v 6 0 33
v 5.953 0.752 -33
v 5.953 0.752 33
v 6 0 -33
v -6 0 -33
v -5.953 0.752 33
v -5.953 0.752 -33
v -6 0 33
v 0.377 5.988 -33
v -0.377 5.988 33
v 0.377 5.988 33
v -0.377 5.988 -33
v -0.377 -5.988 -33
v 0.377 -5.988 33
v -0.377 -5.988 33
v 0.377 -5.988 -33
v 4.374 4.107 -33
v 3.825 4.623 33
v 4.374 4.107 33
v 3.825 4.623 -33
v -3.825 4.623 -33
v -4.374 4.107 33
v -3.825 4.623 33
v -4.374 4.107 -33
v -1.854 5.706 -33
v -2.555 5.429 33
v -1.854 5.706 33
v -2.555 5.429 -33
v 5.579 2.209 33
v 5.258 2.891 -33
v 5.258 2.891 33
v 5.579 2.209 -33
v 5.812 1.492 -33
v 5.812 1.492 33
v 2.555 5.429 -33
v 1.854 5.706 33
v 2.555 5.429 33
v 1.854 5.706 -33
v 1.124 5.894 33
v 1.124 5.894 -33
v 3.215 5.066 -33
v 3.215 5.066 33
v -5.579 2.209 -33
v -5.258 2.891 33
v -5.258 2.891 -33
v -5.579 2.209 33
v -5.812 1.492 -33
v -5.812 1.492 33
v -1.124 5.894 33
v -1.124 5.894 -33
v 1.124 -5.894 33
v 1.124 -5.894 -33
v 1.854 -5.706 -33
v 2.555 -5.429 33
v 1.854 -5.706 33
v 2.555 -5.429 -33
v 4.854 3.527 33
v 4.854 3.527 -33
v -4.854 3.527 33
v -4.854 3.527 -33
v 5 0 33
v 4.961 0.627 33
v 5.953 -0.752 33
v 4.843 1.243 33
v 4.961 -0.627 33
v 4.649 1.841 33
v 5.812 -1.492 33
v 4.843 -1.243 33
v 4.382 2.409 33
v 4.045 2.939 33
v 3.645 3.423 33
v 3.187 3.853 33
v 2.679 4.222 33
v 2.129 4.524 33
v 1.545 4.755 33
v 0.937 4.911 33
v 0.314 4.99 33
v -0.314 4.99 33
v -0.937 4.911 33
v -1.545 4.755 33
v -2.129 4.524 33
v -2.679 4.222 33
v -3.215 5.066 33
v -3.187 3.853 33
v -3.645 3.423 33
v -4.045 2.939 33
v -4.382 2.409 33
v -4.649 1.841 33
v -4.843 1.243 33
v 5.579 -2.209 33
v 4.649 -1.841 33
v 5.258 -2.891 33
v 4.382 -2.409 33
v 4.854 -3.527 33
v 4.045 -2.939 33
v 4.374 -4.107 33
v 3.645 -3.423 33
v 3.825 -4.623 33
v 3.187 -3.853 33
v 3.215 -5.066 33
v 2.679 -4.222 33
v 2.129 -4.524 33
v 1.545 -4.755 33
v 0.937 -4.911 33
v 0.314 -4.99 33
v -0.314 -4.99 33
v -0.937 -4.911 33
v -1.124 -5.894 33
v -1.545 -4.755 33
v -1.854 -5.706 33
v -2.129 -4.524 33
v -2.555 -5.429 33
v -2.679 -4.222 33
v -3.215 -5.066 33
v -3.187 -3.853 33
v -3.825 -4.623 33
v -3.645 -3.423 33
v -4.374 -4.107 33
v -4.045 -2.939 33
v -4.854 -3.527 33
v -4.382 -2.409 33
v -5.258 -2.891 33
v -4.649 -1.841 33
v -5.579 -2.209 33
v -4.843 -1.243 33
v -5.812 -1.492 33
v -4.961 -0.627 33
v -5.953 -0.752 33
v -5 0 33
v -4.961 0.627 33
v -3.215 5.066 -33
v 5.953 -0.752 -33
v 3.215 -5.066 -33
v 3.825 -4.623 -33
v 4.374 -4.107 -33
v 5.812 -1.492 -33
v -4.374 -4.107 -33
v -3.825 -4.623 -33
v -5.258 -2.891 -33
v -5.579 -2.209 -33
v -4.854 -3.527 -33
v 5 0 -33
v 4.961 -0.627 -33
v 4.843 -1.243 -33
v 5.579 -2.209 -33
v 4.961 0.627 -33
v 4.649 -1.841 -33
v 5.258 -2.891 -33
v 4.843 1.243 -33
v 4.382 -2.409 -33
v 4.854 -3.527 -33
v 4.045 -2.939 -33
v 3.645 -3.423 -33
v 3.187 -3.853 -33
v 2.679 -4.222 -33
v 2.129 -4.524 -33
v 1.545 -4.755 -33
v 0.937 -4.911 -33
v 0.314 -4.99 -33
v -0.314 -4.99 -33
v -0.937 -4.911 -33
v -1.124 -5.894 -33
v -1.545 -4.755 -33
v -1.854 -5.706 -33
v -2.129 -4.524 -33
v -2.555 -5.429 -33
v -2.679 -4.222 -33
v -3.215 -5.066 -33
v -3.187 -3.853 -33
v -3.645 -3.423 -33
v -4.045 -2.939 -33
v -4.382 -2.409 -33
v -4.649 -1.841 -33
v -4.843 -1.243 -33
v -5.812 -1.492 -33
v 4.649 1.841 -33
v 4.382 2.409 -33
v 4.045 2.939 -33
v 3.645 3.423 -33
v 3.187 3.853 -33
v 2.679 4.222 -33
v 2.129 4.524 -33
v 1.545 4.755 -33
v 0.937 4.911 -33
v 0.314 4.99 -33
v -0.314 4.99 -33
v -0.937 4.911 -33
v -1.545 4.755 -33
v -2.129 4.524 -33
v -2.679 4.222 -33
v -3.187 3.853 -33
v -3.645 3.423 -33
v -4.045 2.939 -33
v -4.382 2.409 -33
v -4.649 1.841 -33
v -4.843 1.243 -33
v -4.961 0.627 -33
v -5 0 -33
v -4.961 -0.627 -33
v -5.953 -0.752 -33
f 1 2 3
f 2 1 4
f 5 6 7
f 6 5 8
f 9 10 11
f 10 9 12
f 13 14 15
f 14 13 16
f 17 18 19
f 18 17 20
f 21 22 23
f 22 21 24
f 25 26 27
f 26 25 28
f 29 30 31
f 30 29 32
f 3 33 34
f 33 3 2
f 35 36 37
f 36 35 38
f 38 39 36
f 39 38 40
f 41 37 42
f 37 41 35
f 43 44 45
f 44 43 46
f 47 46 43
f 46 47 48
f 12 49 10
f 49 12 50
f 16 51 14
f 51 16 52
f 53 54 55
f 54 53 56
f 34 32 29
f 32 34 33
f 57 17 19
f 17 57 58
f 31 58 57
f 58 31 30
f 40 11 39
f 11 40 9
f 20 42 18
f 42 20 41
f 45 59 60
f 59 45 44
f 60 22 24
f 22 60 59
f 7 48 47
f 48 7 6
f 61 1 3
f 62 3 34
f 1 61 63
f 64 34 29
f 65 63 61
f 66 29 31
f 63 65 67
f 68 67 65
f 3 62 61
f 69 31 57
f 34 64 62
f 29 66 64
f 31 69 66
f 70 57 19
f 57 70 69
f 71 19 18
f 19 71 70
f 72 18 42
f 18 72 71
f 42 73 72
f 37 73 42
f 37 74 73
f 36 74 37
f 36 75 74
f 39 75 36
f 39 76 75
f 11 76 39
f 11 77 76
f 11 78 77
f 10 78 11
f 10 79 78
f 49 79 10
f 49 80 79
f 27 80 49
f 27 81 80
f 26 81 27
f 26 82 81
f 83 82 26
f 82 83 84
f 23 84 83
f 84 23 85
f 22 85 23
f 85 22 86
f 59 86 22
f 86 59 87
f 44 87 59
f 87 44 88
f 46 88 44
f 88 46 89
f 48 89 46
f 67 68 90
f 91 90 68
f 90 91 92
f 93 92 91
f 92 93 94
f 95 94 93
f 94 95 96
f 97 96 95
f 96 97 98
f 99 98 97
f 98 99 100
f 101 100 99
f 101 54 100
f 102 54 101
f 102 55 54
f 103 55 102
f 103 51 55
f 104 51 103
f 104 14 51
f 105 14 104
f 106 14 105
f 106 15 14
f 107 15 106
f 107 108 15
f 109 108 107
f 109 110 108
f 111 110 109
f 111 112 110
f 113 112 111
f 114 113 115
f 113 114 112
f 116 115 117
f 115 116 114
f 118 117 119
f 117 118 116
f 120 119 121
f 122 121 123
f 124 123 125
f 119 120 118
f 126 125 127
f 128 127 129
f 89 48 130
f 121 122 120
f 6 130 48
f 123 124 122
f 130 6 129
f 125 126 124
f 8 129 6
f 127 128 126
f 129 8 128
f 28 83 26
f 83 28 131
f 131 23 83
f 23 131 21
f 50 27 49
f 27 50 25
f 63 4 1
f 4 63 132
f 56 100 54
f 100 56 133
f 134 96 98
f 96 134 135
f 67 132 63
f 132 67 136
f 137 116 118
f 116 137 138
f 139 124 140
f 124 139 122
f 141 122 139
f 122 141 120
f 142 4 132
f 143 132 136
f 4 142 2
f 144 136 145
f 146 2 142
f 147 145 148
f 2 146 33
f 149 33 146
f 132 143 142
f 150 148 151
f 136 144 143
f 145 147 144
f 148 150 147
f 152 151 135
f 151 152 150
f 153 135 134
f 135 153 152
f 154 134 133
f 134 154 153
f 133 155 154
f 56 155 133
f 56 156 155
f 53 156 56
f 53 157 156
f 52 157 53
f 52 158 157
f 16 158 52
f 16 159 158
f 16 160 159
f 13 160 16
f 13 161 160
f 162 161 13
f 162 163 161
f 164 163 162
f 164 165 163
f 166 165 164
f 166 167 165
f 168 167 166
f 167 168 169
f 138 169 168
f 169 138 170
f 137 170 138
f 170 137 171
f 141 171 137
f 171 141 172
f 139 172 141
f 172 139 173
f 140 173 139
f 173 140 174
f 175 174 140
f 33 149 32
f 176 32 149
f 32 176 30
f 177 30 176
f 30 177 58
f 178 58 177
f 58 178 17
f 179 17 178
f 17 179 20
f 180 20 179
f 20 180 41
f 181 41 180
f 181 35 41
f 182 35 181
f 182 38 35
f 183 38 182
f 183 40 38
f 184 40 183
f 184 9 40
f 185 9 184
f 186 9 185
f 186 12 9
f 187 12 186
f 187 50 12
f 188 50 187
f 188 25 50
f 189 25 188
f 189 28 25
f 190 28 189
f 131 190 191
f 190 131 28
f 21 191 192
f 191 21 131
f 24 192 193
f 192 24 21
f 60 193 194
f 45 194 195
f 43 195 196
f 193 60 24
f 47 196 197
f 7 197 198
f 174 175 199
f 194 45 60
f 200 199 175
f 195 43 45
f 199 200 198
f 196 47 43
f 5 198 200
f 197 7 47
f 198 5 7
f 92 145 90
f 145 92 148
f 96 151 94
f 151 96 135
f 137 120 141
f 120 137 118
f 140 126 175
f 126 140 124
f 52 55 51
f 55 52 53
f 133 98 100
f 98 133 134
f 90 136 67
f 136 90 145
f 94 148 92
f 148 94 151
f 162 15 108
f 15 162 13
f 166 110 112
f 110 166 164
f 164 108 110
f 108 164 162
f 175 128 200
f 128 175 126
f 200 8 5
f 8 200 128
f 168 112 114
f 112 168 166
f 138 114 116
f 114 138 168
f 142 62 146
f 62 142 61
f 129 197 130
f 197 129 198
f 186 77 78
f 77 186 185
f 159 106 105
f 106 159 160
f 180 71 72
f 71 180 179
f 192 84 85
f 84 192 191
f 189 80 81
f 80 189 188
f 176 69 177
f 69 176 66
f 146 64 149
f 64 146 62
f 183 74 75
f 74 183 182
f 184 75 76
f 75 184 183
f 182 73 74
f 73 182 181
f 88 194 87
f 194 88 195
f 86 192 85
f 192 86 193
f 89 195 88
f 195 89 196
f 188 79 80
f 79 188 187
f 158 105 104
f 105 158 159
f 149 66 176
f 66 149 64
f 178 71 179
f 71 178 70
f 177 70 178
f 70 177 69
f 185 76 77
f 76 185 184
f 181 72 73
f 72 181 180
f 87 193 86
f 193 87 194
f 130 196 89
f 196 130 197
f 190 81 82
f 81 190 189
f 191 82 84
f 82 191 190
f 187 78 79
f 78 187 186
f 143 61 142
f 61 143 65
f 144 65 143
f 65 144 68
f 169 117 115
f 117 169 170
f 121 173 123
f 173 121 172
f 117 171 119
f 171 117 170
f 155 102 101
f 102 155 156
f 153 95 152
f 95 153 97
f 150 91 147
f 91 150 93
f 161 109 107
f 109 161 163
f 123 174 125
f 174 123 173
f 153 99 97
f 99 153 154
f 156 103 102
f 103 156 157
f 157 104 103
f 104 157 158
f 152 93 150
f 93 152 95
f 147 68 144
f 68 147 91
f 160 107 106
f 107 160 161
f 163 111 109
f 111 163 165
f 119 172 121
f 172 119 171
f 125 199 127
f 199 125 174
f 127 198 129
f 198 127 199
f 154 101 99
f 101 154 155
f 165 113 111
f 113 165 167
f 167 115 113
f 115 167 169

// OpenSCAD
$fn = 50;


difference() {
	union() {
		translate(v = [0, 0, -33.0000000000]) {
			cylinder(h = 66, r = 6.0000000000);
		}
	}
	union() {
		translate(v = [0, 0, -100.0000000000]) {
			cylinder(h = 200, r = 5);
		}
	}
}
